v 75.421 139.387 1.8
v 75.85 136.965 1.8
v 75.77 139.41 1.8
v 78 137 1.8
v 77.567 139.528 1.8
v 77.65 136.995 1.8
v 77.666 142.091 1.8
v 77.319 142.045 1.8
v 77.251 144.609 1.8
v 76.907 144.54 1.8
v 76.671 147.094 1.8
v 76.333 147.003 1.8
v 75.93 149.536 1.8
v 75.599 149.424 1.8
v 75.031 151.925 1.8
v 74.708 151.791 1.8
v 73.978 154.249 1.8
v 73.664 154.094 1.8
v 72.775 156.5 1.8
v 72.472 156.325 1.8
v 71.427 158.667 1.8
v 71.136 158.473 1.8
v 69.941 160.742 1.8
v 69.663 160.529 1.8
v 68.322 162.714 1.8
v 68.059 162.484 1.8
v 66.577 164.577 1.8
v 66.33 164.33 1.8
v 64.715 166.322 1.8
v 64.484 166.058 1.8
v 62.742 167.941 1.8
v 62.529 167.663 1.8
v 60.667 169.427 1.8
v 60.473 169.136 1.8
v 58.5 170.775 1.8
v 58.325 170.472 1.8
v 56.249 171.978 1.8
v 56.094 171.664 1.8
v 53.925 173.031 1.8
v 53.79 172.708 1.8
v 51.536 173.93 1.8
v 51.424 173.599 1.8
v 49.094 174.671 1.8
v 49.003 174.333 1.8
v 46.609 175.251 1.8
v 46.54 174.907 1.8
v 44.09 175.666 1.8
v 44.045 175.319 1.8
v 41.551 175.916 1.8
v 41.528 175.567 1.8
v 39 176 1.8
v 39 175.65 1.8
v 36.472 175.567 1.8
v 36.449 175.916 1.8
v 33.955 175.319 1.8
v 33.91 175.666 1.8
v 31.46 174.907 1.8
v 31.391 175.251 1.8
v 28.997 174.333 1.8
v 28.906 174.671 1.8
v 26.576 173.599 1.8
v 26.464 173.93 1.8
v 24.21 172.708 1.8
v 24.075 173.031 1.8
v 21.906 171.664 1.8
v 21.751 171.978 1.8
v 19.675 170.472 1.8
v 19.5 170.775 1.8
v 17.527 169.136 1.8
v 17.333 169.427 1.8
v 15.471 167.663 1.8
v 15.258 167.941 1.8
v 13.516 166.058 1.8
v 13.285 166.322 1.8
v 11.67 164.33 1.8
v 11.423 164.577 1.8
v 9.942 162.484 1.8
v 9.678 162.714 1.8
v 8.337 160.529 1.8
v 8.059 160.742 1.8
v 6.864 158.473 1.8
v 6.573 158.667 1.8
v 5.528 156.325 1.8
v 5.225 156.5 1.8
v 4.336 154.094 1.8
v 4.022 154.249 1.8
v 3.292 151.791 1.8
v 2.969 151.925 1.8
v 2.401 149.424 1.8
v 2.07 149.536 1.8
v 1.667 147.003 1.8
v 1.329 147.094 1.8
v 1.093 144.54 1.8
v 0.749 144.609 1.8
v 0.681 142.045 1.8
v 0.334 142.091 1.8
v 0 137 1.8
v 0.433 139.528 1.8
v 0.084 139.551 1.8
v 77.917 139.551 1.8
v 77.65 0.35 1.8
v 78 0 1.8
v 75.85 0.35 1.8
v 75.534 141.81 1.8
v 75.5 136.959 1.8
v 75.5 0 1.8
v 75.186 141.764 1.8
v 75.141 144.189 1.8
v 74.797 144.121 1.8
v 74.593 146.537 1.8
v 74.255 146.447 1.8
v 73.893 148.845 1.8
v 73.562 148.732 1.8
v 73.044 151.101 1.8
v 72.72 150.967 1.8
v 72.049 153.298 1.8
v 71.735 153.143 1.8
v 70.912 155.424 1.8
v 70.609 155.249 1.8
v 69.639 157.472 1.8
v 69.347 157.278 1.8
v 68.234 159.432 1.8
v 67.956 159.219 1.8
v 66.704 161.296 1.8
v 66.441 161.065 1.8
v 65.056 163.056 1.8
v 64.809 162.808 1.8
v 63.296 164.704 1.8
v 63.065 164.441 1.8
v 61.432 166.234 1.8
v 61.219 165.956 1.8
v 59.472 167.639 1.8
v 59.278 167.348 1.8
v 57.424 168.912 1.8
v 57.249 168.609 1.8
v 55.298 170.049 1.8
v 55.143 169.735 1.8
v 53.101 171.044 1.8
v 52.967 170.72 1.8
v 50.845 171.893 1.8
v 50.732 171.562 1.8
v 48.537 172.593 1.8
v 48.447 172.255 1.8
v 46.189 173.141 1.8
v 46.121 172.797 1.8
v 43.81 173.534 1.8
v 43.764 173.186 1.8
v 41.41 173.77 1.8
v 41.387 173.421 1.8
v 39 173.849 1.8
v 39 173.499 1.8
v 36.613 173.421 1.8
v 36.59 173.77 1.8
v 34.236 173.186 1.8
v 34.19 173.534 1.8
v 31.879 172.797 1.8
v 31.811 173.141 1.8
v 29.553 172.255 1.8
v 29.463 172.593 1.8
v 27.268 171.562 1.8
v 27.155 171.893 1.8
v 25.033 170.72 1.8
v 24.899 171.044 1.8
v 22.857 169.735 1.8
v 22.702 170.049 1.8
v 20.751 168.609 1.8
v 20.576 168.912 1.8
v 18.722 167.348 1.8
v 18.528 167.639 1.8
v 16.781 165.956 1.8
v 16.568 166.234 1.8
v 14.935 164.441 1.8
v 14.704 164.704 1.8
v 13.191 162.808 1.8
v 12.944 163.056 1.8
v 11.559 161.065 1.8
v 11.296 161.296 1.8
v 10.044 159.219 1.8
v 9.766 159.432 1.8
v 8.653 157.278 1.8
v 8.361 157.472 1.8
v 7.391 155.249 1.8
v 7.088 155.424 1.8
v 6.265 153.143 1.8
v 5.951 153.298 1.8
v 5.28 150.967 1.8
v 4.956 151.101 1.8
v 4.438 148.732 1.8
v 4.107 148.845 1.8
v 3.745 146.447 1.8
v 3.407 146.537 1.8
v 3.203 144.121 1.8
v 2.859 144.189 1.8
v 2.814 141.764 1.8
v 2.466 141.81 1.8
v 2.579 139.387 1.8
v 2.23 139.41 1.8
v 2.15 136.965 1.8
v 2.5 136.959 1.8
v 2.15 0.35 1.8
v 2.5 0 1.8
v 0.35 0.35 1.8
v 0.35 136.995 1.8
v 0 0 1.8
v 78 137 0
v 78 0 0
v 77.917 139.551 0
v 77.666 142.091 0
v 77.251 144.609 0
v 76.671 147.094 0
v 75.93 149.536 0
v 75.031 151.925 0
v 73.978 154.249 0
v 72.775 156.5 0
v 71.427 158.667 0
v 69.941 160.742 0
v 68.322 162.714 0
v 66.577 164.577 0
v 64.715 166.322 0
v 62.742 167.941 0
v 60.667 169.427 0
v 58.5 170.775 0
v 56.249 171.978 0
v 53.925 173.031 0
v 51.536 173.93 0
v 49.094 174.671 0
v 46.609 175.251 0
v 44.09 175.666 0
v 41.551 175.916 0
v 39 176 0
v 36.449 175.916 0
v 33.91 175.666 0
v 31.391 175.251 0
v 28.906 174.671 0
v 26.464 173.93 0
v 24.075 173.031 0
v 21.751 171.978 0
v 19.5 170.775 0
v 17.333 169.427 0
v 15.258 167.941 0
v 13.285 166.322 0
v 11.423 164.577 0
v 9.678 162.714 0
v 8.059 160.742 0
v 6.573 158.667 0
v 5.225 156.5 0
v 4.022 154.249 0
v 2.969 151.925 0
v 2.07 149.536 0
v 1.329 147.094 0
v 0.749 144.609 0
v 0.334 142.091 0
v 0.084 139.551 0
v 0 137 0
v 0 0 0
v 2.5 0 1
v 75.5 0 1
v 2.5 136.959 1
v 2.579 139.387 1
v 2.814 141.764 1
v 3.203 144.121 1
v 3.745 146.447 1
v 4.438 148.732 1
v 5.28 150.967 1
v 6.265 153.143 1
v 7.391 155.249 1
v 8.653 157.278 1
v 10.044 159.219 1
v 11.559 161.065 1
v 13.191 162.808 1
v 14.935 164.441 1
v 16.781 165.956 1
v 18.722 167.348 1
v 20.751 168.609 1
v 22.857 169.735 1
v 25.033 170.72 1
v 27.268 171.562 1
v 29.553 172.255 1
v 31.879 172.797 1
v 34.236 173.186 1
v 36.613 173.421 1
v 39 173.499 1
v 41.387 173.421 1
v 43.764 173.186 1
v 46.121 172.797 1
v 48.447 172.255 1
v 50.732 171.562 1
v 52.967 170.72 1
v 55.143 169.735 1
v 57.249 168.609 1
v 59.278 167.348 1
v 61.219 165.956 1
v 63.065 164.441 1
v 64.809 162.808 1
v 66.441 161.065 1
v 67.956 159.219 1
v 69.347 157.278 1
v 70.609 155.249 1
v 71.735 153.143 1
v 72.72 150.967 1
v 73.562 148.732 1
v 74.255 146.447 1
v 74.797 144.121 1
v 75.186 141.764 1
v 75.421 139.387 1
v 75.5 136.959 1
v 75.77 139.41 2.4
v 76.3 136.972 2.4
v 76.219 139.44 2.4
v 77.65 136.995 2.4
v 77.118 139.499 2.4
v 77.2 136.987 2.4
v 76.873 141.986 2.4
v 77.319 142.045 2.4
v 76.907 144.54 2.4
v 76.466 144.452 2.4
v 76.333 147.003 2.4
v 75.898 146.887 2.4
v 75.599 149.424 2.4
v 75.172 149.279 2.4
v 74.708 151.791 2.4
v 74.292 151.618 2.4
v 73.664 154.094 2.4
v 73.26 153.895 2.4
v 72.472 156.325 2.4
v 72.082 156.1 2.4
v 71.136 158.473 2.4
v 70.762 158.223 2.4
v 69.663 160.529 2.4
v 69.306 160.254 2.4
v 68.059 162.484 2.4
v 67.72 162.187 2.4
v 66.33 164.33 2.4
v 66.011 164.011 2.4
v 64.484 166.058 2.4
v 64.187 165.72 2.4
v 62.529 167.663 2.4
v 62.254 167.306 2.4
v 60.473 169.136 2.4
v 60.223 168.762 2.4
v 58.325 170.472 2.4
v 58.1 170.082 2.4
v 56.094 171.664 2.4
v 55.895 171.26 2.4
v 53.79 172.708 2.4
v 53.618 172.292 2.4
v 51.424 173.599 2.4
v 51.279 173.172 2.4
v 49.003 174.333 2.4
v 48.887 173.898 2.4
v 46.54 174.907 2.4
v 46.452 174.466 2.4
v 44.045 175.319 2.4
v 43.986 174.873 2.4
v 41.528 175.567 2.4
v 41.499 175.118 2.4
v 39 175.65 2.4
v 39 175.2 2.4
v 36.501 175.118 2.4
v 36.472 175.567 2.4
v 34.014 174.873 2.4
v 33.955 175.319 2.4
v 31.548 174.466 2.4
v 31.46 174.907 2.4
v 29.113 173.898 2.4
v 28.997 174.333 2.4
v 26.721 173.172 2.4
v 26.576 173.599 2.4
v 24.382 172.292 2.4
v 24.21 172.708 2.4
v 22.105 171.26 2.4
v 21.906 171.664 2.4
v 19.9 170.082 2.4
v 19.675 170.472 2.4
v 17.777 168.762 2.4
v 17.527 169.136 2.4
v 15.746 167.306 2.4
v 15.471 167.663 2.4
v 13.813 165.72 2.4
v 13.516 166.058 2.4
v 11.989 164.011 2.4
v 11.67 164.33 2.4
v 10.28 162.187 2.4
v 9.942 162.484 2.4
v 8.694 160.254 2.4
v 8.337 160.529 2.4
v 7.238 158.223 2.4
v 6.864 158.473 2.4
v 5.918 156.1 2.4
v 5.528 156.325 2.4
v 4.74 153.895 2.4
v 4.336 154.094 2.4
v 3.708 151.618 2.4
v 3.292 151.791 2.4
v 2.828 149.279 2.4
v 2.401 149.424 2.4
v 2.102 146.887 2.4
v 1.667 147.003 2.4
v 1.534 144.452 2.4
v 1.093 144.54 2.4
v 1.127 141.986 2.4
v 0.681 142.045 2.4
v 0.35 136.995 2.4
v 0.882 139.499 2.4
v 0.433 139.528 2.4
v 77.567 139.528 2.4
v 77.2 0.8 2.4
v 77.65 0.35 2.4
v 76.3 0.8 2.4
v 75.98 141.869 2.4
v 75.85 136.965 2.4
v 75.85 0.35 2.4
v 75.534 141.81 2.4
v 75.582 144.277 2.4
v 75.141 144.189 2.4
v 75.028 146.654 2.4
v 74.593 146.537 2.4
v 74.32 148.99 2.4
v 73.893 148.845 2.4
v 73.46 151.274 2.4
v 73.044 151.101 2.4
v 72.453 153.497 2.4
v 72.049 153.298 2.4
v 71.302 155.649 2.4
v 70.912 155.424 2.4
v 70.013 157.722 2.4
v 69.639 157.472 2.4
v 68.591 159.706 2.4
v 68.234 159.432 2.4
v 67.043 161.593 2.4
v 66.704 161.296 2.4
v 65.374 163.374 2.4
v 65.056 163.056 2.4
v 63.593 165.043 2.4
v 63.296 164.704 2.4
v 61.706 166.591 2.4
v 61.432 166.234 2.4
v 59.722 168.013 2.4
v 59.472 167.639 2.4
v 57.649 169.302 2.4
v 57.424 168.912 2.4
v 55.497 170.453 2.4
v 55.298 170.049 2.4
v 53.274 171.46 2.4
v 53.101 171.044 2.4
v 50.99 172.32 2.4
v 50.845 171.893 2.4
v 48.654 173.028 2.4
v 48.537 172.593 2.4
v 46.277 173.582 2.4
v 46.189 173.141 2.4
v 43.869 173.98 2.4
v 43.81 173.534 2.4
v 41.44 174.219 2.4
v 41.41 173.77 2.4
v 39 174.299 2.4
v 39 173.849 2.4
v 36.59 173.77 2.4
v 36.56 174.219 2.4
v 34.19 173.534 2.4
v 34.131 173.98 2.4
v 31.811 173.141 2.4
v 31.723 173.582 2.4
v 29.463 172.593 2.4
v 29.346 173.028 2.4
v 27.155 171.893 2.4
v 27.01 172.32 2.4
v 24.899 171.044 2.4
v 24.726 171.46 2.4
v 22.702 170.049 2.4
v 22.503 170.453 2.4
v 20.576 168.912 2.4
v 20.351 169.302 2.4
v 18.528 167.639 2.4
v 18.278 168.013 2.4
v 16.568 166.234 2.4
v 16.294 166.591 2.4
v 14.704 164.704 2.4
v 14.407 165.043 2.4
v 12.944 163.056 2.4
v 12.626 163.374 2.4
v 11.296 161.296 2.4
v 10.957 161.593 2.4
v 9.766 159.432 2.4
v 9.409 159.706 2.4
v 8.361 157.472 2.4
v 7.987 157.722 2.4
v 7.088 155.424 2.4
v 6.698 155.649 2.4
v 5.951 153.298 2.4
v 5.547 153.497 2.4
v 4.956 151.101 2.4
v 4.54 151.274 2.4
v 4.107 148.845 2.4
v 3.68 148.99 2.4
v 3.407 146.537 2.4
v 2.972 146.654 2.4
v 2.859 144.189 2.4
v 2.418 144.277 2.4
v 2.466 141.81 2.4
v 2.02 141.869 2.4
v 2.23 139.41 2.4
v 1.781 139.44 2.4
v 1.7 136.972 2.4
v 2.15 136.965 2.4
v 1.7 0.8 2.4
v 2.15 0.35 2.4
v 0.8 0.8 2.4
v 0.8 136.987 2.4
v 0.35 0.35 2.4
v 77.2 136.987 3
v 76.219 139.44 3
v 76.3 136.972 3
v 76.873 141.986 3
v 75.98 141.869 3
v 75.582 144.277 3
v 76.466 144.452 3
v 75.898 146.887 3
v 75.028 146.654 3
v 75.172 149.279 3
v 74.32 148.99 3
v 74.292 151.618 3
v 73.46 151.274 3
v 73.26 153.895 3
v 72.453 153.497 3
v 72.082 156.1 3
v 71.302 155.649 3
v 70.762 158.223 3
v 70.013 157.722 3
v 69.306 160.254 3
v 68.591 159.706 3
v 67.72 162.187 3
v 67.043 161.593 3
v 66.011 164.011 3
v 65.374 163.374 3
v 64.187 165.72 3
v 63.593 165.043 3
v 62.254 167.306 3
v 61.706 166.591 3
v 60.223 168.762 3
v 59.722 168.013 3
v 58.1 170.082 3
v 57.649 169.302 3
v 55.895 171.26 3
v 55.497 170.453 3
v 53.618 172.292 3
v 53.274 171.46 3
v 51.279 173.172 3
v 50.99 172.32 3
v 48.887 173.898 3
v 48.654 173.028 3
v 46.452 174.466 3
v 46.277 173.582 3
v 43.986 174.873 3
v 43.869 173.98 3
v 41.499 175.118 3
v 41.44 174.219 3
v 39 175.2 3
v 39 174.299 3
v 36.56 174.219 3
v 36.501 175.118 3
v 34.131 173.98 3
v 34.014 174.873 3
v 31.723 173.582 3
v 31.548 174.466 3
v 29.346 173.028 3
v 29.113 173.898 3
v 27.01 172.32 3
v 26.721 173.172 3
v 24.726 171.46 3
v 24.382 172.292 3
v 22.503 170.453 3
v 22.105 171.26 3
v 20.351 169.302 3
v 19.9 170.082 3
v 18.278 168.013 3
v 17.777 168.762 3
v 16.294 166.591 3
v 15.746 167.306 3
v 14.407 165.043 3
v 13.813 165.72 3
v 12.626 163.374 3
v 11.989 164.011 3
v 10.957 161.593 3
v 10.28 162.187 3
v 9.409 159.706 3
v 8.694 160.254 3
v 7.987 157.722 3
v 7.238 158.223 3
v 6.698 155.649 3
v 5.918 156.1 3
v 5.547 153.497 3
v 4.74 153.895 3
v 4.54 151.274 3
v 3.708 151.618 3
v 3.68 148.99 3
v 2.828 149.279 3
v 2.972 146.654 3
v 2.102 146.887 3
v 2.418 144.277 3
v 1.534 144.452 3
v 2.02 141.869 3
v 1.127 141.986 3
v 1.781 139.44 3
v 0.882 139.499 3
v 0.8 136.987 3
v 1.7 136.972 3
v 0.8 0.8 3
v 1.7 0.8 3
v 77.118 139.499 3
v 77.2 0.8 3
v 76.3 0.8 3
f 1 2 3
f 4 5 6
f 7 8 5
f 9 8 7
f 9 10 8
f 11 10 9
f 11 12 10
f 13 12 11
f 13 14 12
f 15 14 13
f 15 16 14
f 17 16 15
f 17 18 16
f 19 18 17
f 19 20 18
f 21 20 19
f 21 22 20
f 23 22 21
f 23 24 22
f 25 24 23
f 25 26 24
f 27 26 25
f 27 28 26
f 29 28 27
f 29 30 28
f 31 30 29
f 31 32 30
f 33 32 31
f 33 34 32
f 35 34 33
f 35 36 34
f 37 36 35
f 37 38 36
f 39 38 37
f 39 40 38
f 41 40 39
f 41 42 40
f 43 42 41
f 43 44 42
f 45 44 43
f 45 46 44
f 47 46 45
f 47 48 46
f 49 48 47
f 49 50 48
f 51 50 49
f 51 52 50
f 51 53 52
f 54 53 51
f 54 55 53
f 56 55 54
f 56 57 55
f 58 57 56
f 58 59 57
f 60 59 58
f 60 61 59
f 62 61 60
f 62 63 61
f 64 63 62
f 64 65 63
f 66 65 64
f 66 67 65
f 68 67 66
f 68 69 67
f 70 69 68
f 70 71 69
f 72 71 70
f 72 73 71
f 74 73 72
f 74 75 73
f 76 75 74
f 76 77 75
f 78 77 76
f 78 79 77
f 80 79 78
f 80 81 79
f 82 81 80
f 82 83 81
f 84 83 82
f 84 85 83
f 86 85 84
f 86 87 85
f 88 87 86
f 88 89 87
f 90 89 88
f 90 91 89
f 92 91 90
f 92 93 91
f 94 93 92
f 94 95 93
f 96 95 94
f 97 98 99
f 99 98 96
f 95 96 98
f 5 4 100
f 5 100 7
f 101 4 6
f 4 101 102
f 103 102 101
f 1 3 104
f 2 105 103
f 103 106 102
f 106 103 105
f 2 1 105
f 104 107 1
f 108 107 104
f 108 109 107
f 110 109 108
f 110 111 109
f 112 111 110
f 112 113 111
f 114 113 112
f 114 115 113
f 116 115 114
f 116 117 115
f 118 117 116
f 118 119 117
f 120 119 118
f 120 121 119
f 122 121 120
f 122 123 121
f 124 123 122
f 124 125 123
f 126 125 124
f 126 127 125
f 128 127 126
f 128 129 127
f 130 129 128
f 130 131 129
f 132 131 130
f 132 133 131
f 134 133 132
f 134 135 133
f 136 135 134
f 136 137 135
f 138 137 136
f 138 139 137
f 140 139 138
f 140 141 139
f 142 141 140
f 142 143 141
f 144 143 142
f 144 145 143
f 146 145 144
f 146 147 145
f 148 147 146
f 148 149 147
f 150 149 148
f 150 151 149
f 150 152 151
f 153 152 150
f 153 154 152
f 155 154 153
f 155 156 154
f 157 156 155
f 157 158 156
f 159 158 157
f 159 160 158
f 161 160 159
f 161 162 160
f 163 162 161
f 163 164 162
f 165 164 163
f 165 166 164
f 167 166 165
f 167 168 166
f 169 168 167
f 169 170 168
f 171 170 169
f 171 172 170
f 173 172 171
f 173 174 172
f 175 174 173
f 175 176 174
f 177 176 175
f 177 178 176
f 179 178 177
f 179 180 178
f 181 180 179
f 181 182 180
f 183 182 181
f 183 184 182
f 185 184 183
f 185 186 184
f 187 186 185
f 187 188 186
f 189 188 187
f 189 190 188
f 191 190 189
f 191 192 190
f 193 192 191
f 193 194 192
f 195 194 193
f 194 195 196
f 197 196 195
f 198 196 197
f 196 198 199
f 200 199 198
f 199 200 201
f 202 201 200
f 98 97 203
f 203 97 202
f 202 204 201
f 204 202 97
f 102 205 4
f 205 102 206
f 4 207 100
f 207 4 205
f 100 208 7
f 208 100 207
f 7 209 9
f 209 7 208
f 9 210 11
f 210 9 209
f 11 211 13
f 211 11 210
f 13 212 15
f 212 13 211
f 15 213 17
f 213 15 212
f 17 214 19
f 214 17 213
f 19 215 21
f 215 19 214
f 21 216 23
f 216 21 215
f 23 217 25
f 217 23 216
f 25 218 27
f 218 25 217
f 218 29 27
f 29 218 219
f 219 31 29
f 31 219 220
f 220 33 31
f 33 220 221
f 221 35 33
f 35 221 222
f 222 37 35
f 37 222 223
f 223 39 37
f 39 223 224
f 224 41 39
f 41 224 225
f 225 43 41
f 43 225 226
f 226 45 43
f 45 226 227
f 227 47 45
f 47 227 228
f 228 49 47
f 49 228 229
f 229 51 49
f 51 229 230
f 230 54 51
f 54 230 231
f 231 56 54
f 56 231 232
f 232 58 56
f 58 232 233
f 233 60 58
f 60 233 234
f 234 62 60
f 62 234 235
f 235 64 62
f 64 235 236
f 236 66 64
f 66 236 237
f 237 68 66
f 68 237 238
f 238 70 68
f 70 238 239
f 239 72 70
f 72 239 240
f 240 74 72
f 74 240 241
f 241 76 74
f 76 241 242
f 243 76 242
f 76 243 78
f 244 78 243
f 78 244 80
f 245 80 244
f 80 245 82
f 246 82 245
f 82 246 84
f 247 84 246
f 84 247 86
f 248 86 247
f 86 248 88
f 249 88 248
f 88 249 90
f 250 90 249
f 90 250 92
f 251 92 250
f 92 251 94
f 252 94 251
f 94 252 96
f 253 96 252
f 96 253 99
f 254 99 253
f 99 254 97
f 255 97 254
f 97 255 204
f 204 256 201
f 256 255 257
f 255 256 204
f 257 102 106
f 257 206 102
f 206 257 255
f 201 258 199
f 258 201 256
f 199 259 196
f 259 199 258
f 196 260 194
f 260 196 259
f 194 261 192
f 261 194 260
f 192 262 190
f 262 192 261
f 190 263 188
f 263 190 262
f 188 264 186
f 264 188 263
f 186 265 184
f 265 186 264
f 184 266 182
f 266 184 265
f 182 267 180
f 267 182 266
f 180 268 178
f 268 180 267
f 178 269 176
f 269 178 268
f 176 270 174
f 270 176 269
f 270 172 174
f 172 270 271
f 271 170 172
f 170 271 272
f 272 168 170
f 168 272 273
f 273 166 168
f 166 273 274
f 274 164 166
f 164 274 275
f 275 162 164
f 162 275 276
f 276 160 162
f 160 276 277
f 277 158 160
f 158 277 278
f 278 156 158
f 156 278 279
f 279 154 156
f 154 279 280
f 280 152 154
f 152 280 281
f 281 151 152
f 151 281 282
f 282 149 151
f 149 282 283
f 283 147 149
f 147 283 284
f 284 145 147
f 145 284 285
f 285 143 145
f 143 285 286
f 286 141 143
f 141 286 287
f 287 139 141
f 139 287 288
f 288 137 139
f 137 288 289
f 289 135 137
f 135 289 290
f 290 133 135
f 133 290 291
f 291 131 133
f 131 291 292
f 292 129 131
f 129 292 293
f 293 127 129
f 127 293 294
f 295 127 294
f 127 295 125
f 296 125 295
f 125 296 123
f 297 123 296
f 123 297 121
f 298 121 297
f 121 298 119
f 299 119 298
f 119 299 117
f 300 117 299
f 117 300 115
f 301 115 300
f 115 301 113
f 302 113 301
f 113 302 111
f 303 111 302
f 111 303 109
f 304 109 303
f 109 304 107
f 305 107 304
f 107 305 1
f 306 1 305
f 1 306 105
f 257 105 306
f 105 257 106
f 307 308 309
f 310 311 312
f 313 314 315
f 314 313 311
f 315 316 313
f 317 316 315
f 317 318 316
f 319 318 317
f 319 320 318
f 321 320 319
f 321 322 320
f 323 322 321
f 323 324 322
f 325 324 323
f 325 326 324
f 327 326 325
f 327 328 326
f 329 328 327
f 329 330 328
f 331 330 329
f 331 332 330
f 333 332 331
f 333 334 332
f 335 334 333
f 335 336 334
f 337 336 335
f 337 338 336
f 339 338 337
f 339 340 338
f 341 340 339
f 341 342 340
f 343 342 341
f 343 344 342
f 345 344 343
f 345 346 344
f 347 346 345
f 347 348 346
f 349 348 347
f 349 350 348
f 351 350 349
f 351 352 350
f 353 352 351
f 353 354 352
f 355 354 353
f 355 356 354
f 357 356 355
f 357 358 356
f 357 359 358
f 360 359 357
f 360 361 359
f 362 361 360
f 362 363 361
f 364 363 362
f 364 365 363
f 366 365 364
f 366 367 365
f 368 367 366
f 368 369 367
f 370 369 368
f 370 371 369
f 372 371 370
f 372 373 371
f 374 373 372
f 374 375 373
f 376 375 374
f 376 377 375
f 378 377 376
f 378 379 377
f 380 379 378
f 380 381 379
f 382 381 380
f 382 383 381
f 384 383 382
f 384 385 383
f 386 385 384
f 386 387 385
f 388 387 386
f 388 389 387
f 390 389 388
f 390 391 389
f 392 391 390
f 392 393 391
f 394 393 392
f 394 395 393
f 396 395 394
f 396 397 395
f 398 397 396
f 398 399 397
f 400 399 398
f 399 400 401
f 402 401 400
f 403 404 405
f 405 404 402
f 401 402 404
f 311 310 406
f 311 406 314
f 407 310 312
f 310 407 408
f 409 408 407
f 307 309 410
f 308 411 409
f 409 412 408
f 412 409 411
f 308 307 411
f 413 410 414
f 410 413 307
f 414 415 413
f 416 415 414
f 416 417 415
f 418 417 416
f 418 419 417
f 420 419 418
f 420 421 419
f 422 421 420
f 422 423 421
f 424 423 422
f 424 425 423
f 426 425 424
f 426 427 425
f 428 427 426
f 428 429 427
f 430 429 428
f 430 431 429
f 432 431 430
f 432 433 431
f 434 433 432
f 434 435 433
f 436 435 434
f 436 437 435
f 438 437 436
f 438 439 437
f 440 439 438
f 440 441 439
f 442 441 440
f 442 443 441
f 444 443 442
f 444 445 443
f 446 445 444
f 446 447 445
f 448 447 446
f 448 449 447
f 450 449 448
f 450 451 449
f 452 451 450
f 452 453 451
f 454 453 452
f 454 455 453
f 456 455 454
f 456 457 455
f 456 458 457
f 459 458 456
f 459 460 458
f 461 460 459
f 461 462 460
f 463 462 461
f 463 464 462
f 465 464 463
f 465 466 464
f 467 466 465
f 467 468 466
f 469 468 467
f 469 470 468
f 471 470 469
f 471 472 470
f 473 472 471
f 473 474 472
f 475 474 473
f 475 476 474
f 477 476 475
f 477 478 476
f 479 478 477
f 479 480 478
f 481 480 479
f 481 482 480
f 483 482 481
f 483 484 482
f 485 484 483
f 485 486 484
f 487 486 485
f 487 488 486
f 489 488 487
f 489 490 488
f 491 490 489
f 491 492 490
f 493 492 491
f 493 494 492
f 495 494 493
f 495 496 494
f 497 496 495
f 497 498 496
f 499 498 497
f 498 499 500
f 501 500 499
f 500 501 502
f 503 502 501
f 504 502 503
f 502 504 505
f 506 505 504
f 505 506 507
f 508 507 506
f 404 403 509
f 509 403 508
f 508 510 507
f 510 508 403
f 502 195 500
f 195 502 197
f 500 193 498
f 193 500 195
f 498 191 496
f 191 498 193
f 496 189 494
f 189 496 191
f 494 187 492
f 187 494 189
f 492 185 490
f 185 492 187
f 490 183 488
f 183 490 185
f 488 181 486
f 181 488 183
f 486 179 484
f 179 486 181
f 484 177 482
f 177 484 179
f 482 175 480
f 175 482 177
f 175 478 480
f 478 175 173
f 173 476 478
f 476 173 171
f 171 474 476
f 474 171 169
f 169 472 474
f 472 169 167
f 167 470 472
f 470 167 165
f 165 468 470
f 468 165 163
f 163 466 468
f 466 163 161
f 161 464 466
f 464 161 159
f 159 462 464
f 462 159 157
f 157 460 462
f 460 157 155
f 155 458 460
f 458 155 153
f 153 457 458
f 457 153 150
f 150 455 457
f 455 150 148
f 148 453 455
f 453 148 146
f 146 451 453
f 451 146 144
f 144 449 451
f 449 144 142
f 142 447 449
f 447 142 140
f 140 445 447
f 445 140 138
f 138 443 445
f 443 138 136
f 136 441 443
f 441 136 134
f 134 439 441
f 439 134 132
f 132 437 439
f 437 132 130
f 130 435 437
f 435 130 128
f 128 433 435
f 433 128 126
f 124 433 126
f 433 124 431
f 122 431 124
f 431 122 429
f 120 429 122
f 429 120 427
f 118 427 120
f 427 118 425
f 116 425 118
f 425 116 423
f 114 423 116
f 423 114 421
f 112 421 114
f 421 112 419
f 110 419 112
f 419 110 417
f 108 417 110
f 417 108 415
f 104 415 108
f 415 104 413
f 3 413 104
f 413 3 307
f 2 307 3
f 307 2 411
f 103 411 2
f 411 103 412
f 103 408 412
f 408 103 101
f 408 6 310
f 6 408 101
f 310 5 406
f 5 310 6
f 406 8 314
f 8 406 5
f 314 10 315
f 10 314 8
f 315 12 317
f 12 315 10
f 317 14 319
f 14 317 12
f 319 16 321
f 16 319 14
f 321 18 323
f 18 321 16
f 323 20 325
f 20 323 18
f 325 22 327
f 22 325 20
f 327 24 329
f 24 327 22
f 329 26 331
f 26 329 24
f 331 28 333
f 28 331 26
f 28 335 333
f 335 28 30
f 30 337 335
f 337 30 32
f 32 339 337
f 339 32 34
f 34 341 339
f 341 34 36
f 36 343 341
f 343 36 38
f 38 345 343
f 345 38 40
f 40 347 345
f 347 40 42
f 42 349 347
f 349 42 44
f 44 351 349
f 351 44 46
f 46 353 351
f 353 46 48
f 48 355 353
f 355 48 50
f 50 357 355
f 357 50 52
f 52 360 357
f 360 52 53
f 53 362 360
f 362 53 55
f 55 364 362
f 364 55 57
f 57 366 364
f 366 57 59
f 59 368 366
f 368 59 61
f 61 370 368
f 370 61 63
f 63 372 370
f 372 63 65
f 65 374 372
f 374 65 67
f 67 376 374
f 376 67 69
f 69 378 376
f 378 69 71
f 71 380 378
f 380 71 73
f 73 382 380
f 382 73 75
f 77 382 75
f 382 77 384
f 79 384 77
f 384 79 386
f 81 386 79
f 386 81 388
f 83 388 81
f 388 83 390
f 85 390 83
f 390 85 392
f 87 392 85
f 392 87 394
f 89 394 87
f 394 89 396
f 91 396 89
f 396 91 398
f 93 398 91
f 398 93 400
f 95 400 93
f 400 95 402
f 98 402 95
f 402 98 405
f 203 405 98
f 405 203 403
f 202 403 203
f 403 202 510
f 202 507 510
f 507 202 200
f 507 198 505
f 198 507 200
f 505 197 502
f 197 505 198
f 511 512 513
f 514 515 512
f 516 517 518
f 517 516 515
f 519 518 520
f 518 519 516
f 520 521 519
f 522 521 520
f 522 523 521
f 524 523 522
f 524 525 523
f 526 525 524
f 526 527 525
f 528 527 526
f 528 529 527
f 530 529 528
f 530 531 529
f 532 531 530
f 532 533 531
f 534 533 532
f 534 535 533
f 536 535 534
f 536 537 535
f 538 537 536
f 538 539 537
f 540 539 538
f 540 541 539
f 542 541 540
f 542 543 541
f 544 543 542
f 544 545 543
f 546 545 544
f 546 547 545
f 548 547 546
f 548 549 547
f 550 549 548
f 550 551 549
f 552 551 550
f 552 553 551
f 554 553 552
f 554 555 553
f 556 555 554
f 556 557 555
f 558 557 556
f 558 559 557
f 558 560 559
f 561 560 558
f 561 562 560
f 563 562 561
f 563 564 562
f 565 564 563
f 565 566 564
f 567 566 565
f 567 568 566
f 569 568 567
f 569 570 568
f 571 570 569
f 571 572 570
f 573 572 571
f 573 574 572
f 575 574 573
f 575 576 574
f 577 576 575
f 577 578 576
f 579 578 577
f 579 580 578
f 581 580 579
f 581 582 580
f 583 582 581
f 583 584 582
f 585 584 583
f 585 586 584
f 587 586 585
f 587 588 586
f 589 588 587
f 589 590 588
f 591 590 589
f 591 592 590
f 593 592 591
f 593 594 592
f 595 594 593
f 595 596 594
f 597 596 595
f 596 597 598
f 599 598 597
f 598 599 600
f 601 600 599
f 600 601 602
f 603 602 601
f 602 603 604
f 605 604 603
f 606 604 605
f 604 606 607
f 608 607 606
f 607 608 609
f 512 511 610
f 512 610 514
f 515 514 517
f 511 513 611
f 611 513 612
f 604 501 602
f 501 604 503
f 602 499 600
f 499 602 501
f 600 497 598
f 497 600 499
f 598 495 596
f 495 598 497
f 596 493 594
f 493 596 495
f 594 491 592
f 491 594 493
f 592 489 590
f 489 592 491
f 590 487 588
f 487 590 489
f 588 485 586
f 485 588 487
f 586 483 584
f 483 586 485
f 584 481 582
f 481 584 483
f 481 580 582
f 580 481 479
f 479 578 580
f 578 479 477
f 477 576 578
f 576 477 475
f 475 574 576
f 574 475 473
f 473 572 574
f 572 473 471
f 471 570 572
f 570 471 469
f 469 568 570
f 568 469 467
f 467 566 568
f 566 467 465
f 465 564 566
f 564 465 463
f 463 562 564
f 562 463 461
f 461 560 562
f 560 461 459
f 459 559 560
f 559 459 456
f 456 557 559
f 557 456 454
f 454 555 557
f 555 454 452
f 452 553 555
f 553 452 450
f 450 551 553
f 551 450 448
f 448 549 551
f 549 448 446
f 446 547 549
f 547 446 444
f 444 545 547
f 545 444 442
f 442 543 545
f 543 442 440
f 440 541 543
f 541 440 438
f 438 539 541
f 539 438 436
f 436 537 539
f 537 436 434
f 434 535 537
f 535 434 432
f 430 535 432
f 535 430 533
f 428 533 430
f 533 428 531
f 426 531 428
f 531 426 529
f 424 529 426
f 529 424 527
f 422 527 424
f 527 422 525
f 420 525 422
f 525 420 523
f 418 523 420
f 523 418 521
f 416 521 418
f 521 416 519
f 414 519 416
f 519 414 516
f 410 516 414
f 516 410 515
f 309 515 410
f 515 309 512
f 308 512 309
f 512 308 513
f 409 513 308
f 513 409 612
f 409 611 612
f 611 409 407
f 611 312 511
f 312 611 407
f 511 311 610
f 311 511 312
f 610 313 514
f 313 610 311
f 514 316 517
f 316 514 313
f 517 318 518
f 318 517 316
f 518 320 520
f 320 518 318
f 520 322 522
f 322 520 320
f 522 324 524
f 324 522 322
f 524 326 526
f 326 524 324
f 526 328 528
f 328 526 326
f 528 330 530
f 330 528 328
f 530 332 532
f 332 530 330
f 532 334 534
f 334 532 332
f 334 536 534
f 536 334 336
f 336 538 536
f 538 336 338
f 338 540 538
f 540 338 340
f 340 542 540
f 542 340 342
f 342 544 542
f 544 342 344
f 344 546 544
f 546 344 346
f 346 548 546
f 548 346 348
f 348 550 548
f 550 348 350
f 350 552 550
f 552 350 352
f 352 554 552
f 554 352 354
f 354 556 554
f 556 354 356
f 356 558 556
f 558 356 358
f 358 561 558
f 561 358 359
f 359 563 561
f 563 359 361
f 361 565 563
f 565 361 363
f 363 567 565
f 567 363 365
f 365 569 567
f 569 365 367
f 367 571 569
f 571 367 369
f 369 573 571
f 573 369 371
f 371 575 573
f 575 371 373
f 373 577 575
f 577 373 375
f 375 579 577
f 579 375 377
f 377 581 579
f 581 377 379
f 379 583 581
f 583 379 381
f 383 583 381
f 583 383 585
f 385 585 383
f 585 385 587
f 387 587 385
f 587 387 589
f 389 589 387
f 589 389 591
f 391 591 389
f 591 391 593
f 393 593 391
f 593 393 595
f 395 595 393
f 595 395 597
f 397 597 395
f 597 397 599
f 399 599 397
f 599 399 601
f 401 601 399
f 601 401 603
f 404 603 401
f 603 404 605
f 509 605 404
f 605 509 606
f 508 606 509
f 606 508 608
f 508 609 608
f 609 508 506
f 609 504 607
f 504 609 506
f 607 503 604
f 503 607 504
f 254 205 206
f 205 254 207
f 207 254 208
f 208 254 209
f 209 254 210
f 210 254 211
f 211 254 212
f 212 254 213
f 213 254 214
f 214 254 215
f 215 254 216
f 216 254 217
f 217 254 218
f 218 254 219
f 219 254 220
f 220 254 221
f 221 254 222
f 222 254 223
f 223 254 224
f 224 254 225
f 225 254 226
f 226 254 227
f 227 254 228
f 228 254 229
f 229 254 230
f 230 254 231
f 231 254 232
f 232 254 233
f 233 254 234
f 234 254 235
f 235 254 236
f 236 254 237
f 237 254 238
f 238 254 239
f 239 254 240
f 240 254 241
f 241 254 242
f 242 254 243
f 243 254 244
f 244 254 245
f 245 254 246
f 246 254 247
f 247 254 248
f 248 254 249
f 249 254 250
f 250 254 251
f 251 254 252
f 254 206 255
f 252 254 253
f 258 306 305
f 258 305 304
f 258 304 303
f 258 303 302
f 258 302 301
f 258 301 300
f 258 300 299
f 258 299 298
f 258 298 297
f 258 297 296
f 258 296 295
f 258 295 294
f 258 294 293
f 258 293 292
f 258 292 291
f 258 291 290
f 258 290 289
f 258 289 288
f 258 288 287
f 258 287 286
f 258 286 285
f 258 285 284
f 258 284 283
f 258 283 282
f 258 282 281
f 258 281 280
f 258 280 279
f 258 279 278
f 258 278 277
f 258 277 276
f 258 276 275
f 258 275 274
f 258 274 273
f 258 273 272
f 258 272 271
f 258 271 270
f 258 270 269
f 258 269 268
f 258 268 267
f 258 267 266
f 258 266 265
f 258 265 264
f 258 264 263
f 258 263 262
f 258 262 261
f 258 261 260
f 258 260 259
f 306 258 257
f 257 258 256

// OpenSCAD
// Central_Arch.stl  -  Store Versile room frame (Rev C)
// Quantity: 1   Filament: White (e.g. PLA Basic Jade White / Matte Ivory White)
// Print: layer 0.16 mm, infill 15%, 2 walls, brim 0 mm, NO supports
// Orientation: back  (lying on its back, front face up)
// Notes: Border up. 176 mm long: place diagonally if your plate edge is tight; no brim needed.
// The library draws parts with their front toward +Y; mirror([0,1,0]) makes the real
// part face the viewer correctly (see build.py). Edit dimensions in versile_parts.scad.
use <../versile_parts.scad>

rotate([-90, 0, 0]) mirror([0, 1, 0]) central_arch();
